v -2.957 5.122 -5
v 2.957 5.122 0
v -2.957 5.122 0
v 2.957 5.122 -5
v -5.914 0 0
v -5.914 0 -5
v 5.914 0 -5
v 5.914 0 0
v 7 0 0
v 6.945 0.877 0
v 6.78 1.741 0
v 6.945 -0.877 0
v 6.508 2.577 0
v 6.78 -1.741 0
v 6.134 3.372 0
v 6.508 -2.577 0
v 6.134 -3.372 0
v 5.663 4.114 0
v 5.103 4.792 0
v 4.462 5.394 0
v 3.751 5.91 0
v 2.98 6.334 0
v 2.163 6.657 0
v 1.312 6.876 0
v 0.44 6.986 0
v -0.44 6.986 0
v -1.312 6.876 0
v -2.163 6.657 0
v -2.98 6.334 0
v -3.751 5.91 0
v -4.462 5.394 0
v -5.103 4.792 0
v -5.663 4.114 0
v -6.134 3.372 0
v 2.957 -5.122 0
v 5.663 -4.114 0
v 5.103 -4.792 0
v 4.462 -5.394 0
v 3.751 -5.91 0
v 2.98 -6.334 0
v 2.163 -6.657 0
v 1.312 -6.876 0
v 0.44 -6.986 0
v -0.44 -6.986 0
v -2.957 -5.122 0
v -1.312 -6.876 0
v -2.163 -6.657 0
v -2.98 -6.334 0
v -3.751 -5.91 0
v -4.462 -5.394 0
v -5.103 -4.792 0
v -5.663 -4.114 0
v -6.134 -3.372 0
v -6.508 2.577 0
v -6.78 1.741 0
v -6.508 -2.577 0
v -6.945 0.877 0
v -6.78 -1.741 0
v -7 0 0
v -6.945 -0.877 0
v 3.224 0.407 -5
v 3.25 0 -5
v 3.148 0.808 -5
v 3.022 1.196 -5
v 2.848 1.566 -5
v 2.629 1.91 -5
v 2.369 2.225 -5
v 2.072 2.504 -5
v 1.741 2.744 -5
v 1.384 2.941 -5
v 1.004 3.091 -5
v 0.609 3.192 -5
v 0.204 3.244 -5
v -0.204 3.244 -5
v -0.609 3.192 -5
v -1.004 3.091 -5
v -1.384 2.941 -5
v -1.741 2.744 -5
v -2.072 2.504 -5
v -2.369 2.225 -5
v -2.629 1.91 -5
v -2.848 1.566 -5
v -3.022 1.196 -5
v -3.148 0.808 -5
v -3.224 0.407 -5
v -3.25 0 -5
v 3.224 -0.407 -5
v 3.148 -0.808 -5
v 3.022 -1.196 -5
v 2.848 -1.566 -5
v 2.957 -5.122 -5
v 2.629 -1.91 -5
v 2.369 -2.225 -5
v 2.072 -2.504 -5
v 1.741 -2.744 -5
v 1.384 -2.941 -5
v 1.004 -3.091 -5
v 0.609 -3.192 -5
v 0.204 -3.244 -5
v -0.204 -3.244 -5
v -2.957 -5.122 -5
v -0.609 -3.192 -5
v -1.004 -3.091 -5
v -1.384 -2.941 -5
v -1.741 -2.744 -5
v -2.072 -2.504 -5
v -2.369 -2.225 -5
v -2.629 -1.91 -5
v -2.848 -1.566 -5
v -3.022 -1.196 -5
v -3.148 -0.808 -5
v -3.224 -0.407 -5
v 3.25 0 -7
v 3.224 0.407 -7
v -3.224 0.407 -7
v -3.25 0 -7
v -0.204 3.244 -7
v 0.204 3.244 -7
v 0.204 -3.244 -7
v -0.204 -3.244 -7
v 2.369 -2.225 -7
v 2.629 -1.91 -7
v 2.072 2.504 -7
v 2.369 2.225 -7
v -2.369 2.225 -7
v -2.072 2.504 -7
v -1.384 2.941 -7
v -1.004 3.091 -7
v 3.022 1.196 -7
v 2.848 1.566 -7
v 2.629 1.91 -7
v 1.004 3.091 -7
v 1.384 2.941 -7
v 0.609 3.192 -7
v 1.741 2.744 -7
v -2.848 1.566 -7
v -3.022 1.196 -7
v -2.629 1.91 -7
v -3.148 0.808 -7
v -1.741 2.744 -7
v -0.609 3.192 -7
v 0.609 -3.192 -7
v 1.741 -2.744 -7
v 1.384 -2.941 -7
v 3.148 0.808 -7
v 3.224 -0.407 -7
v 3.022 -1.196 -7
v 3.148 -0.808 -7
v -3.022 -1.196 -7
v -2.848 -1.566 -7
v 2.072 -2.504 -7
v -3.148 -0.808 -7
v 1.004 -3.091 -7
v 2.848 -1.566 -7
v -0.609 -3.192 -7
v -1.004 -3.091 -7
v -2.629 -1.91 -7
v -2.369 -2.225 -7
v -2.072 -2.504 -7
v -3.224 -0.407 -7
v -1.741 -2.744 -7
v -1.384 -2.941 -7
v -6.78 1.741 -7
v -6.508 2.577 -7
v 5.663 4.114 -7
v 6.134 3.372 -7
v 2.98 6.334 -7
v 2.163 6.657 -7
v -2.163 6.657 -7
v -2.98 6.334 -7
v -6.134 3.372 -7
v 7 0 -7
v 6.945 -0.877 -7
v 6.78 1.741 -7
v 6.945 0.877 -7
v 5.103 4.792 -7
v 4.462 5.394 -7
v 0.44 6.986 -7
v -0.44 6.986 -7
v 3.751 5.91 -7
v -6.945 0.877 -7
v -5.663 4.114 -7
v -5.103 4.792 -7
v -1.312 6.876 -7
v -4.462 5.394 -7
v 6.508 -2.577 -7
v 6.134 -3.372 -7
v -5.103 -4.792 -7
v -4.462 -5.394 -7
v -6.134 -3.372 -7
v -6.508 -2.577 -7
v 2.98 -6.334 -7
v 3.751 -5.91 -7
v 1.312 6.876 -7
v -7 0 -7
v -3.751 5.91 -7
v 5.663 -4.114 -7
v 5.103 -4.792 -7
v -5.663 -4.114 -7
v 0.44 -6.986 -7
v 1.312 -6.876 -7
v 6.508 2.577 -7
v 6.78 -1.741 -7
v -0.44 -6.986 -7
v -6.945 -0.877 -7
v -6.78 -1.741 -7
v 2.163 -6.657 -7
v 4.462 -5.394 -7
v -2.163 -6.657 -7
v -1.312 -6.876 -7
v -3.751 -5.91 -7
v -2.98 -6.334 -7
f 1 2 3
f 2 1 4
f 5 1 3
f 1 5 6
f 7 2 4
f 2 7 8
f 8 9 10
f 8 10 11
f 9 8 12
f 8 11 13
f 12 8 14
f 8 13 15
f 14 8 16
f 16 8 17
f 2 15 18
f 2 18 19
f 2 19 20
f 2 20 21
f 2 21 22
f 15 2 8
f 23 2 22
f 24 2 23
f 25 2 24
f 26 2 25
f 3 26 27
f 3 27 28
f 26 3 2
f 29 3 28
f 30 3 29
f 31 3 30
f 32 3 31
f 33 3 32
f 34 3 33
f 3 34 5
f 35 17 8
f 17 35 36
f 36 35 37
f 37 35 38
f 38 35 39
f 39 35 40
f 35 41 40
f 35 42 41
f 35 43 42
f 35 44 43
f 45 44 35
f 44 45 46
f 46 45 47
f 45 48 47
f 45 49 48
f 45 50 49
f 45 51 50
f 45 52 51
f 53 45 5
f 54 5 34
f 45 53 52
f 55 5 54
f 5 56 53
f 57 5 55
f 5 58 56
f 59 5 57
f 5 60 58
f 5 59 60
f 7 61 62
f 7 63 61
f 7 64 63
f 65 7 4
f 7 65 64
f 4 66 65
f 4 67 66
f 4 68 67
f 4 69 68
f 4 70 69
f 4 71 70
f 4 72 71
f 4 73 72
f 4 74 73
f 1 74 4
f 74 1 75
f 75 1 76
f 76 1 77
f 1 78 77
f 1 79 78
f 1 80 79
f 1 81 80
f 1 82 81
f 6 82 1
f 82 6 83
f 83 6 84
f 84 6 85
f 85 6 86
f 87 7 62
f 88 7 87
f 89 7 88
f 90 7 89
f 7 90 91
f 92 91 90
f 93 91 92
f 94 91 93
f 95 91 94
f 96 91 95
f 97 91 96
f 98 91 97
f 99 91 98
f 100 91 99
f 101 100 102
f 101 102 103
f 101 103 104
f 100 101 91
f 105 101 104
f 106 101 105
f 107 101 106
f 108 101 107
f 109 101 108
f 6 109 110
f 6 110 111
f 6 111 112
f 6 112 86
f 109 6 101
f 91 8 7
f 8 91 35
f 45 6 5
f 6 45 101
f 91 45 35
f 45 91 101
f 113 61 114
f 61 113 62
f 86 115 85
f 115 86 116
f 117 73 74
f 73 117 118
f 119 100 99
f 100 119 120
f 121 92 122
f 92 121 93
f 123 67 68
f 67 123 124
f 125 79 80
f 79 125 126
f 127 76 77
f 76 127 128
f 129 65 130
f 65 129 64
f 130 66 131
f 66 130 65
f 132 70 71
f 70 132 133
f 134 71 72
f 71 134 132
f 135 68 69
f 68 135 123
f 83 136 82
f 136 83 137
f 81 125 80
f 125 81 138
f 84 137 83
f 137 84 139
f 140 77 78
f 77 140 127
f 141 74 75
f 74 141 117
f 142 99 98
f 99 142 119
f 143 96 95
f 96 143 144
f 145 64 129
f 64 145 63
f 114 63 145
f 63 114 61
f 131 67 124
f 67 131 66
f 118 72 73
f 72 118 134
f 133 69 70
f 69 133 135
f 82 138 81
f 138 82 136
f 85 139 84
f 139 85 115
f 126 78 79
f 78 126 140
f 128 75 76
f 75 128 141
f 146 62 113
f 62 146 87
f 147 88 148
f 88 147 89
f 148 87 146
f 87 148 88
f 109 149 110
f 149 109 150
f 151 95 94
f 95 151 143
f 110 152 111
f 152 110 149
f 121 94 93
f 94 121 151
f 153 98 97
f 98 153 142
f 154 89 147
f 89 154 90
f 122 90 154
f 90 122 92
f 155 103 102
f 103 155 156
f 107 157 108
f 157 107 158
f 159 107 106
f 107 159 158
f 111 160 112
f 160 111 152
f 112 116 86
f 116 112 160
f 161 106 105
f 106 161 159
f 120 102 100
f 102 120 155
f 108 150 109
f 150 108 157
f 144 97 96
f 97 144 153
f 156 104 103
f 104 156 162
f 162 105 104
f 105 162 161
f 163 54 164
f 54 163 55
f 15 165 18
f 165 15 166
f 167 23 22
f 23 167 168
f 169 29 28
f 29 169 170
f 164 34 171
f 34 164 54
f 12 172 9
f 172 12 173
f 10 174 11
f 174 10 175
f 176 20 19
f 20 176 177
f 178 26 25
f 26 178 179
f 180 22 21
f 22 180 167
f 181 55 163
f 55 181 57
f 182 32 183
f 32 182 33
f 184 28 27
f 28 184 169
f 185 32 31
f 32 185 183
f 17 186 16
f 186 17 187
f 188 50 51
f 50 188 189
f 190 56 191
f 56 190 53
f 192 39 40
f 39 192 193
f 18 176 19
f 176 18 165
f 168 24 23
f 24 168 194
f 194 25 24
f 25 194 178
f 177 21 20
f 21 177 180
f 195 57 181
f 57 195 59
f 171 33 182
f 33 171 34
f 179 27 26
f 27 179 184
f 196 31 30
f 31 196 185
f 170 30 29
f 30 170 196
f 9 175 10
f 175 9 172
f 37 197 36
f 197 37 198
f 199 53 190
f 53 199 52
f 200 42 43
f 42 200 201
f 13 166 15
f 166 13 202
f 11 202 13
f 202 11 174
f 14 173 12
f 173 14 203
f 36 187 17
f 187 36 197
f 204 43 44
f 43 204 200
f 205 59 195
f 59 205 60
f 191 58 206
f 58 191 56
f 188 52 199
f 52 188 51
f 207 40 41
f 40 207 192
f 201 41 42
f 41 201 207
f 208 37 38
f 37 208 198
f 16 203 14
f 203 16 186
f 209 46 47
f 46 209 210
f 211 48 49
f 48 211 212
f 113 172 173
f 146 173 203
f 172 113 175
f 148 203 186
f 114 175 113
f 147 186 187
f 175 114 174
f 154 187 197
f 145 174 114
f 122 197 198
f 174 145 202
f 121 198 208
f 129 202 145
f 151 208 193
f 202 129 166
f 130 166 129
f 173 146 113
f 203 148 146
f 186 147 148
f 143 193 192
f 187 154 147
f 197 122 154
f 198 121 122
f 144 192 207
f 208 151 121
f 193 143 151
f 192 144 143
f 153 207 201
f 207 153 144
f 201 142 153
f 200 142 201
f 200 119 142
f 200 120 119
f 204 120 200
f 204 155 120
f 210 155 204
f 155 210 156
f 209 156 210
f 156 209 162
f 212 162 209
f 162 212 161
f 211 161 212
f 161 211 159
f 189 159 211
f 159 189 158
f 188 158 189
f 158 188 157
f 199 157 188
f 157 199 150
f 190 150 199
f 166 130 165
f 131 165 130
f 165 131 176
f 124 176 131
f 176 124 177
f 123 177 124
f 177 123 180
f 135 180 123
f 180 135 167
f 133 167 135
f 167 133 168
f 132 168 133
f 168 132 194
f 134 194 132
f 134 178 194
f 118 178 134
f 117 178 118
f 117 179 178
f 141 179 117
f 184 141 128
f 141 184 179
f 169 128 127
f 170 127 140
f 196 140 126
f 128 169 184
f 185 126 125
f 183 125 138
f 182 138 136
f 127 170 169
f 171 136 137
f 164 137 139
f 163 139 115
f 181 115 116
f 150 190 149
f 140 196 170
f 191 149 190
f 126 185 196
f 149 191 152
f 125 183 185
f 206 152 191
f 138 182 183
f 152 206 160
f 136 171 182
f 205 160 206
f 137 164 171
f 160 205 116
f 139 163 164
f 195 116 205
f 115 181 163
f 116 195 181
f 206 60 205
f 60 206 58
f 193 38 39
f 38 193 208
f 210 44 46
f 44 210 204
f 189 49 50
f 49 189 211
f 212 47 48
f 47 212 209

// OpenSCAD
$fn = 50;

difference() {
	union() {
		translate(v = [0, 0, -7.0]) {
			cylinder(h = 7.0, r = 7.0);
		}
	}
	union() {
		translate(v = [0, 0, 0]) {
			rotate(a = [0, 0, 0]) {
				difference() {
					union() {
						translate(v = [0, 0, -5]) {
							linear_extrude(height = 5) {
								polygon(points = [[5.914249999999999, 0.0], [2.957125, 5.1218907443321156], [-2.9571249999999982, 5.1218907443321156], [-5.914249999999999, 7.242867331857232e-16], [-2.9571250000000022, -5.121890744332115], [2.9571249999999956, -5.121890744332118]]);
							}
						}
					}
					union();
				}
			}
		}
		#translate(v = [0, 0, -100.0]) {
			cylinder(h = 200, r = 3.25);
		}
	}
}
